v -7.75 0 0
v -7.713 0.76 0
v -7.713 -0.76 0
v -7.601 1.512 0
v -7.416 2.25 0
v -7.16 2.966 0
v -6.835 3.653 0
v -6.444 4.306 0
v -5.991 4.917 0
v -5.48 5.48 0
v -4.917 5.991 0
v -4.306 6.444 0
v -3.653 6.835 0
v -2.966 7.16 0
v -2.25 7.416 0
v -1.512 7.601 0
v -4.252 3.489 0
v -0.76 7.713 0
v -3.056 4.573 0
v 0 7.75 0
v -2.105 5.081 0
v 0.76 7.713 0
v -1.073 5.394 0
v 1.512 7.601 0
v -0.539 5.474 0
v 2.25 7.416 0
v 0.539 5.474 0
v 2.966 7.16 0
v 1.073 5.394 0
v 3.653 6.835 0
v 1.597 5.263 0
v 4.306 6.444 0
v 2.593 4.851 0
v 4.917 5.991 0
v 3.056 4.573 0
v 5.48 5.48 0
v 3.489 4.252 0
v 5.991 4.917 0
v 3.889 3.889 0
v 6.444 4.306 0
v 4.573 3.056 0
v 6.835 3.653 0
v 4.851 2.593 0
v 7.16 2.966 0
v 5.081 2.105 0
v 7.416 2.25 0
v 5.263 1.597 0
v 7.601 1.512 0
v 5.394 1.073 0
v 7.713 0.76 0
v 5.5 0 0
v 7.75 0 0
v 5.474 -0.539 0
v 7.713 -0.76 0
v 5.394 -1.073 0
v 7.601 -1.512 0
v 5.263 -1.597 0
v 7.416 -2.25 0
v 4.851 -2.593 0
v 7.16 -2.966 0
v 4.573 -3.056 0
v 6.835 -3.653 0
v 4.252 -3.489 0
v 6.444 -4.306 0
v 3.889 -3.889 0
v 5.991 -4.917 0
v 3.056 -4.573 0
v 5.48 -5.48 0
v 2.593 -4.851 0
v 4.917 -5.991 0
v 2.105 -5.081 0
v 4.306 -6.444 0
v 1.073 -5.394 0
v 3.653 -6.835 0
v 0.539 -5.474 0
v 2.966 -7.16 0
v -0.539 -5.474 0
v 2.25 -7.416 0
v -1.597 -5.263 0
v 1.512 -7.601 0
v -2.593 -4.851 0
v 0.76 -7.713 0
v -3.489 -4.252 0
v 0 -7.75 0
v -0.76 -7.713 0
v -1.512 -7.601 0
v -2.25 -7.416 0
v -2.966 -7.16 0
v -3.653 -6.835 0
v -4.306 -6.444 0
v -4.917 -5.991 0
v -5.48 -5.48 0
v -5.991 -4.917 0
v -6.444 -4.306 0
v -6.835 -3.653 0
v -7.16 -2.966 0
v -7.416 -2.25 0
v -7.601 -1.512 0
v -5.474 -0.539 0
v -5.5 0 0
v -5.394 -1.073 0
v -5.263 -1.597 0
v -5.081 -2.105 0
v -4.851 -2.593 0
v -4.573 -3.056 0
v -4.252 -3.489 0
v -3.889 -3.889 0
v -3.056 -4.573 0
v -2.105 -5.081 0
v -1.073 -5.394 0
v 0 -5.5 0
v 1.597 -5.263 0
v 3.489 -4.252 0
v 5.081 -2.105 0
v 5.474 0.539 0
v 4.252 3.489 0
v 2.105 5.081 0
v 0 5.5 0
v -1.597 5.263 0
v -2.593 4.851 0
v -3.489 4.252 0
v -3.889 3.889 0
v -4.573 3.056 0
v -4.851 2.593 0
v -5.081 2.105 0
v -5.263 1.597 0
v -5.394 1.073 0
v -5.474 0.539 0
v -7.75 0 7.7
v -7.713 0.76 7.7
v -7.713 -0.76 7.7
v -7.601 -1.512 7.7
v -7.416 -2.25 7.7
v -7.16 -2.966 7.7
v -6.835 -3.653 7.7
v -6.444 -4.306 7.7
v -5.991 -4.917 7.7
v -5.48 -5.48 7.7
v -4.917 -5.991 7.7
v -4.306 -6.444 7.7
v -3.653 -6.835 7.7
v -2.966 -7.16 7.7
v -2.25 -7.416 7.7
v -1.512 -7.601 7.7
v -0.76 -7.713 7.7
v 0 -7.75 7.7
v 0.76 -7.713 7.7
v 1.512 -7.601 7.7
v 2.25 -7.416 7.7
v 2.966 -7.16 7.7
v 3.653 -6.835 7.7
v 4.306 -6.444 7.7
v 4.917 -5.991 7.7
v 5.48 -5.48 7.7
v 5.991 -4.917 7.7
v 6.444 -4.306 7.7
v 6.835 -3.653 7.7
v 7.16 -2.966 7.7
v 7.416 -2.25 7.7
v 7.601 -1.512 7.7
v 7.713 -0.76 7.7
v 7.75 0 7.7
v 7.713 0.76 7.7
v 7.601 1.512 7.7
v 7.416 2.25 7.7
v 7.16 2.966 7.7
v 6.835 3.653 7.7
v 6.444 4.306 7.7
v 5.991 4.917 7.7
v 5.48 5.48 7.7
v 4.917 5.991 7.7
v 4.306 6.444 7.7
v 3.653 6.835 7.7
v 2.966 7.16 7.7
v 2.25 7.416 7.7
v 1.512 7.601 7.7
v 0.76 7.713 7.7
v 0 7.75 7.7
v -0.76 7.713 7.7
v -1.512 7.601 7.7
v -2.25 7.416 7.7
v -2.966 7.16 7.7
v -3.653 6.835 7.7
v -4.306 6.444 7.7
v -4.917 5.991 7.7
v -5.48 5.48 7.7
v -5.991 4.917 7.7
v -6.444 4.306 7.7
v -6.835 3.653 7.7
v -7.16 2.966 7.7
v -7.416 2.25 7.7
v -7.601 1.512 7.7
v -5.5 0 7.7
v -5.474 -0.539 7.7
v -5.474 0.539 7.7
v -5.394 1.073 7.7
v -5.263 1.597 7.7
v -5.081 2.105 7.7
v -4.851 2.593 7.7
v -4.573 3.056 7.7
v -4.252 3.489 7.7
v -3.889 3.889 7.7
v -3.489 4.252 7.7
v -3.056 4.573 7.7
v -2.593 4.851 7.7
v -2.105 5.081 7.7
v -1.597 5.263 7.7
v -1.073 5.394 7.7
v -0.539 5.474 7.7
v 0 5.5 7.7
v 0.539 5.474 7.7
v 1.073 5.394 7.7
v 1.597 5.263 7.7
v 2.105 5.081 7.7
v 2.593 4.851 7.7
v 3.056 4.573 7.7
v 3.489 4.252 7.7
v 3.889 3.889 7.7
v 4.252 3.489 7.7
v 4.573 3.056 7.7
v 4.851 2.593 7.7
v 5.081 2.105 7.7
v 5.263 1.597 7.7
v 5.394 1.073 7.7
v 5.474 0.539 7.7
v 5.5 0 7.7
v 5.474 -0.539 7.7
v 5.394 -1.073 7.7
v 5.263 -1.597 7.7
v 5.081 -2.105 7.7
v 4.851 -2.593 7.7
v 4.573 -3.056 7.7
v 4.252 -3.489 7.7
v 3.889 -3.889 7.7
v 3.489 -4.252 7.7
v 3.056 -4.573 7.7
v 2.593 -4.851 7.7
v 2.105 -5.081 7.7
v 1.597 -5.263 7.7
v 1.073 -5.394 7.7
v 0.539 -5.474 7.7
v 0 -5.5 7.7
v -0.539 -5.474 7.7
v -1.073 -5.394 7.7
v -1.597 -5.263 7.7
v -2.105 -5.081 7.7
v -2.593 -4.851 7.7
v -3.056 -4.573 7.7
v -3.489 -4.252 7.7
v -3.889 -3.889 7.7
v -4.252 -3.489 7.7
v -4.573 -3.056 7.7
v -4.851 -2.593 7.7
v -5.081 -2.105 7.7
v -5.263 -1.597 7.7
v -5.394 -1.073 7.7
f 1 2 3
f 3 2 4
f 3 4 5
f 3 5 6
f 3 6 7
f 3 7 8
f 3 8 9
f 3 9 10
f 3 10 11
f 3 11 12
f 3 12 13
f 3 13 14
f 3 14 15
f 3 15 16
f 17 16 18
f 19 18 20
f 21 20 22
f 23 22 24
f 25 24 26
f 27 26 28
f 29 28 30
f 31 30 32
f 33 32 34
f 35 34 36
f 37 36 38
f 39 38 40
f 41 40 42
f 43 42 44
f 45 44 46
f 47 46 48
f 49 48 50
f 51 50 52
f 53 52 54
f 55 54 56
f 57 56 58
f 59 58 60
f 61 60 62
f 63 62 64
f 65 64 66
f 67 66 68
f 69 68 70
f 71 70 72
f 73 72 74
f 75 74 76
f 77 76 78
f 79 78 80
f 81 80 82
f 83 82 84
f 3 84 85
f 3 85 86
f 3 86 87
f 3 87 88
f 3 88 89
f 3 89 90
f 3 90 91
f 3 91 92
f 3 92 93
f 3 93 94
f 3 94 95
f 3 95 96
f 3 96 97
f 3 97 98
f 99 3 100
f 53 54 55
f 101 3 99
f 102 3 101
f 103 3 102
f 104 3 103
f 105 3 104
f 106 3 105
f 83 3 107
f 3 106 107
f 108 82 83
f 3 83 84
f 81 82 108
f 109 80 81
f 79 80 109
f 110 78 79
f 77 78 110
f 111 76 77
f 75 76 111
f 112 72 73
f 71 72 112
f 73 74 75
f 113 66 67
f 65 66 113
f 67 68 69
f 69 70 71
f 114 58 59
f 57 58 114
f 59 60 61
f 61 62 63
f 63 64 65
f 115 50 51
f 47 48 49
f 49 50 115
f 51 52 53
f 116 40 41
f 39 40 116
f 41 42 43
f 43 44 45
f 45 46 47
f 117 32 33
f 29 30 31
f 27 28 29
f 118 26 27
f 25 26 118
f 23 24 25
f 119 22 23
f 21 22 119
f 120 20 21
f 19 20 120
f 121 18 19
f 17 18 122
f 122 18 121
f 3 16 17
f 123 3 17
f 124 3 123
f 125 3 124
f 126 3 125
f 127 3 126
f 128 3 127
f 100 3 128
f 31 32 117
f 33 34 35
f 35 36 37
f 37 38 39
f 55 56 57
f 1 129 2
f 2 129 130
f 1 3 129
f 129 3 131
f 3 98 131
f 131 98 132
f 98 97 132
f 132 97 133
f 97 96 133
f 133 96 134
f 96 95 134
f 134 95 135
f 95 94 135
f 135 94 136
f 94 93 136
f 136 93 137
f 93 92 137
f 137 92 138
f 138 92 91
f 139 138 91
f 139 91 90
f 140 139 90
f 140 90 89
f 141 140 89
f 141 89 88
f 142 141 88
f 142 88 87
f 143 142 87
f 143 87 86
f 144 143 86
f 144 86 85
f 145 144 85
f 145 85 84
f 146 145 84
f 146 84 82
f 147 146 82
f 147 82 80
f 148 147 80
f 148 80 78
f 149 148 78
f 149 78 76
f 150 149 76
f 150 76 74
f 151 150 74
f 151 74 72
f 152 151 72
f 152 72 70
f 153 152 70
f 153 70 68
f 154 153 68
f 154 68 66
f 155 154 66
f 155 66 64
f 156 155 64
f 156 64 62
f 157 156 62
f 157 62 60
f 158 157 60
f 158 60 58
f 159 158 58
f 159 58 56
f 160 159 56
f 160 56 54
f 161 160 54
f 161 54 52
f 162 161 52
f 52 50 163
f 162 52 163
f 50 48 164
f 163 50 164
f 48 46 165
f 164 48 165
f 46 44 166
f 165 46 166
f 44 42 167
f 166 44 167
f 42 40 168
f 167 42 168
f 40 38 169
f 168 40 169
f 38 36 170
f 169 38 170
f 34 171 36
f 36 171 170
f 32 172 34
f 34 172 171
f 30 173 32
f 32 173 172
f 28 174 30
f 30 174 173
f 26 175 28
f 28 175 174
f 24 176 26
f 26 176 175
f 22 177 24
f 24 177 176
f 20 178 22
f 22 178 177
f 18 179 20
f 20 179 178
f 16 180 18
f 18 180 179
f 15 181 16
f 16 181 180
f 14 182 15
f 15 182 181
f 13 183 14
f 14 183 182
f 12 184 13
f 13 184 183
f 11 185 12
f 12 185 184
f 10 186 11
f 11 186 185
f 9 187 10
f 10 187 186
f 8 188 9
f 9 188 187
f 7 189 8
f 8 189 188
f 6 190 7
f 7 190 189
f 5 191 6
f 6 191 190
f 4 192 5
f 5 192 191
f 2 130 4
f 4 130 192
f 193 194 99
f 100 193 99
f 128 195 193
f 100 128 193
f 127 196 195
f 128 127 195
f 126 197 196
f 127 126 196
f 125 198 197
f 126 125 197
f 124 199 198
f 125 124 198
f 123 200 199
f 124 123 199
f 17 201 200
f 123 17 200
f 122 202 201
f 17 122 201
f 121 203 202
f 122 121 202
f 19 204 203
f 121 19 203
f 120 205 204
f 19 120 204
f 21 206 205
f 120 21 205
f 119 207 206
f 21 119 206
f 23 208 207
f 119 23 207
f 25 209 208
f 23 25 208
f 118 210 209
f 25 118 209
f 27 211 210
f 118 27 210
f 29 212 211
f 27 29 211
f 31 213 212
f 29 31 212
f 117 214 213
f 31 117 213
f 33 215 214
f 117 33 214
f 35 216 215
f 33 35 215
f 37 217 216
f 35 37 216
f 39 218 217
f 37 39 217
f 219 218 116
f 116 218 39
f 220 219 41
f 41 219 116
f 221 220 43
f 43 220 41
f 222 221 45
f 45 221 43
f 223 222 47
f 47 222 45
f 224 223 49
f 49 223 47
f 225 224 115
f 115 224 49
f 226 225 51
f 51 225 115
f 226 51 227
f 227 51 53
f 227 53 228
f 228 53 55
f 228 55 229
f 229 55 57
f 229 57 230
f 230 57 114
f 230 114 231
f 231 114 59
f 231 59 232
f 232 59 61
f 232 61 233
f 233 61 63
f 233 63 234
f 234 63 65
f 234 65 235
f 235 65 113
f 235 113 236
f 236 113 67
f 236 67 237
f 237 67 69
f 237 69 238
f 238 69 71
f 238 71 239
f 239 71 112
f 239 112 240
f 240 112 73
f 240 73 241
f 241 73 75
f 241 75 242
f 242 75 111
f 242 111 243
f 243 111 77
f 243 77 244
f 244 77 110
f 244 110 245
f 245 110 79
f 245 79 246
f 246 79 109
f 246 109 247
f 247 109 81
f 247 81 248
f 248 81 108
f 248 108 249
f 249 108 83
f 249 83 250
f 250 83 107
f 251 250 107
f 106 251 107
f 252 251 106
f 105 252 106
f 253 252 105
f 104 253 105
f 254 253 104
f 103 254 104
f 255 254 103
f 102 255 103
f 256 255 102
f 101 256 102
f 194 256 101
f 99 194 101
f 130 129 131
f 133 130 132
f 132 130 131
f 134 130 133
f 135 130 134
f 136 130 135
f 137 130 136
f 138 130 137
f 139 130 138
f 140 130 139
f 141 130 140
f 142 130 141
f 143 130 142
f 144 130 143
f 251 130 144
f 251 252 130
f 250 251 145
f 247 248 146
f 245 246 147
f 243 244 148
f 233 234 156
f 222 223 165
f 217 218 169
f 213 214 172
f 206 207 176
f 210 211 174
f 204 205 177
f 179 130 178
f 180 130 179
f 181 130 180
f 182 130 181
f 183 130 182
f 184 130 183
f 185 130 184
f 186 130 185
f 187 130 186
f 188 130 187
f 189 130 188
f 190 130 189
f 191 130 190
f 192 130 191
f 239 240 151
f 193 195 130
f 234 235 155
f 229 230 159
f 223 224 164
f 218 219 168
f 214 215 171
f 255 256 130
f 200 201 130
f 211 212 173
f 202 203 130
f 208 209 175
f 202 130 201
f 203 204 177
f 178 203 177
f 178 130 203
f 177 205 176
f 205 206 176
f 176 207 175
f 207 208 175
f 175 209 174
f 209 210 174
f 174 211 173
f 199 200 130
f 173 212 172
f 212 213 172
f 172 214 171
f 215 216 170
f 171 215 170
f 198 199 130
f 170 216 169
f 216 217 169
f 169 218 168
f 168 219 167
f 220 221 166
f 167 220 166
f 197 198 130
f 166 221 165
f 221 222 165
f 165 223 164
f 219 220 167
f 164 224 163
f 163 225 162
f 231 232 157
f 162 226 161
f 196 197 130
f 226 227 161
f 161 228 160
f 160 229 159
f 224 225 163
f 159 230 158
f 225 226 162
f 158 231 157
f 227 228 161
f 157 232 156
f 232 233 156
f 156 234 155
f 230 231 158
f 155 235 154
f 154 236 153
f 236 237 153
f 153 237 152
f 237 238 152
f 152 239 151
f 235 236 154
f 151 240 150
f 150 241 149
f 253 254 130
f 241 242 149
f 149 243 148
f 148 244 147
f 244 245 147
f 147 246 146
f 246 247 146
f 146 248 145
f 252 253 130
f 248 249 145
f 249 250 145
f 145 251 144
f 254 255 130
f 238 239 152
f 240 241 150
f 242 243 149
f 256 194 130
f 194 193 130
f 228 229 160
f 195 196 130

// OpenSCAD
outer_r=15.5/2;
inner_r=11.0/2;
h=7.7;

$fn=64;
difference() {
  cylinder(r=outer_r, h=h);
  cylinder(r=inner_r, h=h);
}
